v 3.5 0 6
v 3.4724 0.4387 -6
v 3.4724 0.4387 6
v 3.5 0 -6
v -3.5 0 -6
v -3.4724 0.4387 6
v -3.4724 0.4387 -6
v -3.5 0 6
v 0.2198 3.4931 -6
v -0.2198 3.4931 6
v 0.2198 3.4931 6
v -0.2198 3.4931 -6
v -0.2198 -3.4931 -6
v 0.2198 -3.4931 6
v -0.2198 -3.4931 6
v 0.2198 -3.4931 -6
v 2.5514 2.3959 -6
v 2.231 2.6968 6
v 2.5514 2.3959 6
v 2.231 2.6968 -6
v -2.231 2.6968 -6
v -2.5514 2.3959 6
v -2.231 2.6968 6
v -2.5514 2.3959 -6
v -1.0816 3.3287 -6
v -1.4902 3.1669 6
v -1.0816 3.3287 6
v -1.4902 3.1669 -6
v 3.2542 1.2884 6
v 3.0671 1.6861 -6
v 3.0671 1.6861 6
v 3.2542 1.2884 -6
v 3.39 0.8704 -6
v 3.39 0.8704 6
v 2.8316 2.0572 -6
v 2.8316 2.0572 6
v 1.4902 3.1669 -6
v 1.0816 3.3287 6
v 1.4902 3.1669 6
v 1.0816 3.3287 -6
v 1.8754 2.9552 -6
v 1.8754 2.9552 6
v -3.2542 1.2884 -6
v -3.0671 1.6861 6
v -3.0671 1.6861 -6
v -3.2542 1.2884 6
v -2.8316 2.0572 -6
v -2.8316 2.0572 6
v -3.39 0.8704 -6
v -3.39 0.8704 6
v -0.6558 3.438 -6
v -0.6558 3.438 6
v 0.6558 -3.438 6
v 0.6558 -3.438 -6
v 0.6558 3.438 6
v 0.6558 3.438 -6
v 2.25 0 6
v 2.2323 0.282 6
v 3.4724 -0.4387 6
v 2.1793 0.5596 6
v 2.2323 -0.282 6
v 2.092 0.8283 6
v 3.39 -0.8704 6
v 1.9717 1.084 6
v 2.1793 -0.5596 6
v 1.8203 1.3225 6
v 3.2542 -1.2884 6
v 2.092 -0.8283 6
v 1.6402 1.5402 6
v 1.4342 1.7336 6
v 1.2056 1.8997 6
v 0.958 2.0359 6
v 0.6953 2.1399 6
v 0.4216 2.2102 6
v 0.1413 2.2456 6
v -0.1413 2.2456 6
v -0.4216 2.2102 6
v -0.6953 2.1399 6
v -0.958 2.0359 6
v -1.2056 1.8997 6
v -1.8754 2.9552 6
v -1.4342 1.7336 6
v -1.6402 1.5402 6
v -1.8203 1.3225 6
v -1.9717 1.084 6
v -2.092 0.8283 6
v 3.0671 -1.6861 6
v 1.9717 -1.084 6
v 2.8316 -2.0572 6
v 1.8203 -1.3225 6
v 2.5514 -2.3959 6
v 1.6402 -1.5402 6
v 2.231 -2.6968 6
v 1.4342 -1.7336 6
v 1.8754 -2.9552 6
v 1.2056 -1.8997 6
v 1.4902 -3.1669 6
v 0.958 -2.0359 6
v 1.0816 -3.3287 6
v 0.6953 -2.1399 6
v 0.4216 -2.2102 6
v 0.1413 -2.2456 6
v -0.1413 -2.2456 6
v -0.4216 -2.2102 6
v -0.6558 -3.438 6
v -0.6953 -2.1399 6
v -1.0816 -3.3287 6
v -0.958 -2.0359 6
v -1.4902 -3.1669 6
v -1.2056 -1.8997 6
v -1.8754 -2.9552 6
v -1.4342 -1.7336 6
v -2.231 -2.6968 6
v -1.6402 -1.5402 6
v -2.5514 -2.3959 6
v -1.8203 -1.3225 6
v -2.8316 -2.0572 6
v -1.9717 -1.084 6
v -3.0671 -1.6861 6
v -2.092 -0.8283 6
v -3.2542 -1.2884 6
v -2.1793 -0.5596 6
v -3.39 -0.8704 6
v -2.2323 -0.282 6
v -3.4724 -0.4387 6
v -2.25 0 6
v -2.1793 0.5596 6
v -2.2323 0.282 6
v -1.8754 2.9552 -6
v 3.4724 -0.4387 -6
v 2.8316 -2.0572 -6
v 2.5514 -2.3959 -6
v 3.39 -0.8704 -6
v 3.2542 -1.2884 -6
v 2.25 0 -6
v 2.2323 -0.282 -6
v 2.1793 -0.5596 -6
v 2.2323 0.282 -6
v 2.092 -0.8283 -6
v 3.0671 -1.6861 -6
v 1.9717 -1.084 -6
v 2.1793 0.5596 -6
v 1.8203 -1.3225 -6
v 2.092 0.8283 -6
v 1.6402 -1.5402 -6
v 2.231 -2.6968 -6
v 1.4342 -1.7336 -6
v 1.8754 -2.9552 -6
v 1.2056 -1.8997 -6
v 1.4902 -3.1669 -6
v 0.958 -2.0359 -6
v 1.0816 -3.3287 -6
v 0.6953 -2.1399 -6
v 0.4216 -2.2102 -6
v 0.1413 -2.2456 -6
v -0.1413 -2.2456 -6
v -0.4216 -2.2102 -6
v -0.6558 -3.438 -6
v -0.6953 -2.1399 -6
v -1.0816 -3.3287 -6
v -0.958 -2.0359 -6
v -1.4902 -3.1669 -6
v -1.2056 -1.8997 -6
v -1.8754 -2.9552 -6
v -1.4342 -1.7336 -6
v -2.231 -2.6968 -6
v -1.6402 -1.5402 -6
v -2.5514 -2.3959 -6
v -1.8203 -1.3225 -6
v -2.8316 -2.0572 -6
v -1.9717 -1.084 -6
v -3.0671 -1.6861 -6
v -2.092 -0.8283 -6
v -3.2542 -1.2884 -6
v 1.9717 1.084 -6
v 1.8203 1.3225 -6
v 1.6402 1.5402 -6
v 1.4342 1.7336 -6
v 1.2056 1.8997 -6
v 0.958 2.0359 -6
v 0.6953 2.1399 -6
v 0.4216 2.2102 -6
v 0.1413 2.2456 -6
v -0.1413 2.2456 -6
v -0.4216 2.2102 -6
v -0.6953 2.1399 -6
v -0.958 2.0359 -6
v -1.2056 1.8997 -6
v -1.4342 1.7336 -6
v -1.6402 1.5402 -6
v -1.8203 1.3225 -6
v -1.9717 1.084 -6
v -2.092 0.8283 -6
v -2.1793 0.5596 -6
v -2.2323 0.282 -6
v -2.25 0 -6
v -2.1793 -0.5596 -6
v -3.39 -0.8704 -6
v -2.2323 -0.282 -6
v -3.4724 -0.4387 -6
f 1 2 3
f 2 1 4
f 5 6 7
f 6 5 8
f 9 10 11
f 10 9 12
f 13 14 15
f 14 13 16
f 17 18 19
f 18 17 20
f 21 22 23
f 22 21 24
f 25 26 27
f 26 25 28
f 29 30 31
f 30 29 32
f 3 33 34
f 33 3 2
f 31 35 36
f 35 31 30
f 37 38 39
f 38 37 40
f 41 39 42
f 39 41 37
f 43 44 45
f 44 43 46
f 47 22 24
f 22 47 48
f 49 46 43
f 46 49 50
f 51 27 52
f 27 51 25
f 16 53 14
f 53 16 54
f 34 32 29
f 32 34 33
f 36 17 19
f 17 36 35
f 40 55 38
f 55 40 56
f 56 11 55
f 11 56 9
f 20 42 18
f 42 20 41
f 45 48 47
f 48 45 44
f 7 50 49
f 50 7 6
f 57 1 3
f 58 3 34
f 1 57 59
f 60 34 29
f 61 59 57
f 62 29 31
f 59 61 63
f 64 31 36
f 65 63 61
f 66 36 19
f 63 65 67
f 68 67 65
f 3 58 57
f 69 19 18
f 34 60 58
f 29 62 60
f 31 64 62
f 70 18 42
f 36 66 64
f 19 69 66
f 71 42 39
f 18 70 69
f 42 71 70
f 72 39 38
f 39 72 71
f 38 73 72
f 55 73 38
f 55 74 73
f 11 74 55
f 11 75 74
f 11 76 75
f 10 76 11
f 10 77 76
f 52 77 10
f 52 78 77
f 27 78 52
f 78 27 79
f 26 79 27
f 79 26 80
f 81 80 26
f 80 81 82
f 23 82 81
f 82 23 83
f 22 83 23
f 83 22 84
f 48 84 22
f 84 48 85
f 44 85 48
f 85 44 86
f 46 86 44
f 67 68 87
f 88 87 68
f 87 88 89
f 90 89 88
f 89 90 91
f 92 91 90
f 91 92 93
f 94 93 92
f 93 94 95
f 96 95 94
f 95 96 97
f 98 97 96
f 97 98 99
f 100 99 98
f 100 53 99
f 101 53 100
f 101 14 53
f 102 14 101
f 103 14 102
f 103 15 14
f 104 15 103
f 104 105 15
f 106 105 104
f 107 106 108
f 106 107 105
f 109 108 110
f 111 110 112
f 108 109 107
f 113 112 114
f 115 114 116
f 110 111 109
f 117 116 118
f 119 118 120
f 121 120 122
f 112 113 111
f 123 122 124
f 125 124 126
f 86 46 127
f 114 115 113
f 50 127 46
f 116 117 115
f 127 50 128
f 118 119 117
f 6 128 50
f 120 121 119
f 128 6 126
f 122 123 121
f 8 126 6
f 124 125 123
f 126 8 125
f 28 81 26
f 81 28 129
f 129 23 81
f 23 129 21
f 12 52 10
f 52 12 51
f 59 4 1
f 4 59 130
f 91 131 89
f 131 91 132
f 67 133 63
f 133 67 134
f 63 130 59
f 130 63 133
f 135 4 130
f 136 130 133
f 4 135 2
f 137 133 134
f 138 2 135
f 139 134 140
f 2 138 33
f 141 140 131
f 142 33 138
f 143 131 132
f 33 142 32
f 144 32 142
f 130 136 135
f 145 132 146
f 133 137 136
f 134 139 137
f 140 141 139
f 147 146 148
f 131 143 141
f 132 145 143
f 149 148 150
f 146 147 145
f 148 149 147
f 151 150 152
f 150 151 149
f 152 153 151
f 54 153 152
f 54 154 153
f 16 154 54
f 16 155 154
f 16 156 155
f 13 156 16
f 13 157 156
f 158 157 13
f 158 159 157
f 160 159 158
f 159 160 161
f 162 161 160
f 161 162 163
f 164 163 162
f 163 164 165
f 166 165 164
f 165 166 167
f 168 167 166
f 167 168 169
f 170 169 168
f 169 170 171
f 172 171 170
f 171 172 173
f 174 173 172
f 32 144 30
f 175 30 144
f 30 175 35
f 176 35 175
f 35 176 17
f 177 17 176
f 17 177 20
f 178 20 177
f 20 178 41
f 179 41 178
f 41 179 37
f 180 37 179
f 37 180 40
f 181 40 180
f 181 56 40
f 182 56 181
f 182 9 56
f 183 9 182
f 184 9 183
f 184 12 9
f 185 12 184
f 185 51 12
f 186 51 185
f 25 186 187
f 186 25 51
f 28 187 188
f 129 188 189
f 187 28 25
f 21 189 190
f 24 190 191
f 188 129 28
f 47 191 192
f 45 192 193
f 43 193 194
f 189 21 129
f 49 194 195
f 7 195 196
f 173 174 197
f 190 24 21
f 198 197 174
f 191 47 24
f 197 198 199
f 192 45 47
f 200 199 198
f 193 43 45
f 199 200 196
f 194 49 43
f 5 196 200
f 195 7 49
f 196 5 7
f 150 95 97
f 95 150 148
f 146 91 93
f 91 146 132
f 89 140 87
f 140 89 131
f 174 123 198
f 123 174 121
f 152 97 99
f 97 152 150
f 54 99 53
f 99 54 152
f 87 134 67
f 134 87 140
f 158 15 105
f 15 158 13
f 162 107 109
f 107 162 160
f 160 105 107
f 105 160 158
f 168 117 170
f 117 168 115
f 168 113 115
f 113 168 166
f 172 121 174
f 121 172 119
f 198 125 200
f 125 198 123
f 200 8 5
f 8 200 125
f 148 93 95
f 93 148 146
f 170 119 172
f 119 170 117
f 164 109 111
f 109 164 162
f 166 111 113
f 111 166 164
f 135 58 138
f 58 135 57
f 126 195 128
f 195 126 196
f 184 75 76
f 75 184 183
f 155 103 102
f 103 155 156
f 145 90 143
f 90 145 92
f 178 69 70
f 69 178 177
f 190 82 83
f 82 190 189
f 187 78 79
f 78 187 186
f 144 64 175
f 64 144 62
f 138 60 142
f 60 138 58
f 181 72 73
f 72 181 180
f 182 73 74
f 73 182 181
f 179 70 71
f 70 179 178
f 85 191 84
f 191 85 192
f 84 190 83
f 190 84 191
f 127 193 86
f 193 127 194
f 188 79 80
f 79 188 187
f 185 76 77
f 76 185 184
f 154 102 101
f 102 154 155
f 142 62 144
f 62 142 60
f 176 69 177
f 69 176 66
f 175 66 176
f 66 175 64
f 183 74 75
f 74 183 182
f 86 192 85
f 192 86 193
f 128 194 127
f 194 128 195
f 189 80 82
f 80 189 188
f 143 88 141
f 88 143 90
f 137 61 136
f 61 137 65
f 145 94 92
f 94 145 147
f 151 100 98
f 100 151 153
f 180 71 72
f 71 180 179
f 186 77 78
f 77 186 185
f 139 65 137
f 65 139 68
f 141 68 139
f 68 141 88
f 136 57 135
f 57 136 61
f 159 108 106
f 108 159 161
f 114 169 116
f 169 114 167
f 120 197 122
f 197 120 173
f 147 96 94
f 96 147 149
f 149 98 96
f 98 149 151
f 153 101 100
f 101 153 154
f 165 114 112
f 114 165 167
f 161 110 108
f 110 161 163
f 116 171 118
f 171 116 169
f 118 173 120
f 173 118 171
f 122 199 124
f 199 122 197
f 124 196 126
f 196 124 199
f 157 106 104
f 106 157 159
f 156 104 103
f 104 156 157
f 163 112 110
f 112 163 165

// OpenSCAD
$fn = 50;


difference() {
	union() {
		translate(v = [0, 0, -6.0000000000]) {
			cylinder(h = 12, r = 3.5000000000);
		}
	}
	union() {
		translate(v = [0, 0, -100.0000000000]) {
			cylinder(h = 200, r = 2.2500000000);
		}
	}
}
